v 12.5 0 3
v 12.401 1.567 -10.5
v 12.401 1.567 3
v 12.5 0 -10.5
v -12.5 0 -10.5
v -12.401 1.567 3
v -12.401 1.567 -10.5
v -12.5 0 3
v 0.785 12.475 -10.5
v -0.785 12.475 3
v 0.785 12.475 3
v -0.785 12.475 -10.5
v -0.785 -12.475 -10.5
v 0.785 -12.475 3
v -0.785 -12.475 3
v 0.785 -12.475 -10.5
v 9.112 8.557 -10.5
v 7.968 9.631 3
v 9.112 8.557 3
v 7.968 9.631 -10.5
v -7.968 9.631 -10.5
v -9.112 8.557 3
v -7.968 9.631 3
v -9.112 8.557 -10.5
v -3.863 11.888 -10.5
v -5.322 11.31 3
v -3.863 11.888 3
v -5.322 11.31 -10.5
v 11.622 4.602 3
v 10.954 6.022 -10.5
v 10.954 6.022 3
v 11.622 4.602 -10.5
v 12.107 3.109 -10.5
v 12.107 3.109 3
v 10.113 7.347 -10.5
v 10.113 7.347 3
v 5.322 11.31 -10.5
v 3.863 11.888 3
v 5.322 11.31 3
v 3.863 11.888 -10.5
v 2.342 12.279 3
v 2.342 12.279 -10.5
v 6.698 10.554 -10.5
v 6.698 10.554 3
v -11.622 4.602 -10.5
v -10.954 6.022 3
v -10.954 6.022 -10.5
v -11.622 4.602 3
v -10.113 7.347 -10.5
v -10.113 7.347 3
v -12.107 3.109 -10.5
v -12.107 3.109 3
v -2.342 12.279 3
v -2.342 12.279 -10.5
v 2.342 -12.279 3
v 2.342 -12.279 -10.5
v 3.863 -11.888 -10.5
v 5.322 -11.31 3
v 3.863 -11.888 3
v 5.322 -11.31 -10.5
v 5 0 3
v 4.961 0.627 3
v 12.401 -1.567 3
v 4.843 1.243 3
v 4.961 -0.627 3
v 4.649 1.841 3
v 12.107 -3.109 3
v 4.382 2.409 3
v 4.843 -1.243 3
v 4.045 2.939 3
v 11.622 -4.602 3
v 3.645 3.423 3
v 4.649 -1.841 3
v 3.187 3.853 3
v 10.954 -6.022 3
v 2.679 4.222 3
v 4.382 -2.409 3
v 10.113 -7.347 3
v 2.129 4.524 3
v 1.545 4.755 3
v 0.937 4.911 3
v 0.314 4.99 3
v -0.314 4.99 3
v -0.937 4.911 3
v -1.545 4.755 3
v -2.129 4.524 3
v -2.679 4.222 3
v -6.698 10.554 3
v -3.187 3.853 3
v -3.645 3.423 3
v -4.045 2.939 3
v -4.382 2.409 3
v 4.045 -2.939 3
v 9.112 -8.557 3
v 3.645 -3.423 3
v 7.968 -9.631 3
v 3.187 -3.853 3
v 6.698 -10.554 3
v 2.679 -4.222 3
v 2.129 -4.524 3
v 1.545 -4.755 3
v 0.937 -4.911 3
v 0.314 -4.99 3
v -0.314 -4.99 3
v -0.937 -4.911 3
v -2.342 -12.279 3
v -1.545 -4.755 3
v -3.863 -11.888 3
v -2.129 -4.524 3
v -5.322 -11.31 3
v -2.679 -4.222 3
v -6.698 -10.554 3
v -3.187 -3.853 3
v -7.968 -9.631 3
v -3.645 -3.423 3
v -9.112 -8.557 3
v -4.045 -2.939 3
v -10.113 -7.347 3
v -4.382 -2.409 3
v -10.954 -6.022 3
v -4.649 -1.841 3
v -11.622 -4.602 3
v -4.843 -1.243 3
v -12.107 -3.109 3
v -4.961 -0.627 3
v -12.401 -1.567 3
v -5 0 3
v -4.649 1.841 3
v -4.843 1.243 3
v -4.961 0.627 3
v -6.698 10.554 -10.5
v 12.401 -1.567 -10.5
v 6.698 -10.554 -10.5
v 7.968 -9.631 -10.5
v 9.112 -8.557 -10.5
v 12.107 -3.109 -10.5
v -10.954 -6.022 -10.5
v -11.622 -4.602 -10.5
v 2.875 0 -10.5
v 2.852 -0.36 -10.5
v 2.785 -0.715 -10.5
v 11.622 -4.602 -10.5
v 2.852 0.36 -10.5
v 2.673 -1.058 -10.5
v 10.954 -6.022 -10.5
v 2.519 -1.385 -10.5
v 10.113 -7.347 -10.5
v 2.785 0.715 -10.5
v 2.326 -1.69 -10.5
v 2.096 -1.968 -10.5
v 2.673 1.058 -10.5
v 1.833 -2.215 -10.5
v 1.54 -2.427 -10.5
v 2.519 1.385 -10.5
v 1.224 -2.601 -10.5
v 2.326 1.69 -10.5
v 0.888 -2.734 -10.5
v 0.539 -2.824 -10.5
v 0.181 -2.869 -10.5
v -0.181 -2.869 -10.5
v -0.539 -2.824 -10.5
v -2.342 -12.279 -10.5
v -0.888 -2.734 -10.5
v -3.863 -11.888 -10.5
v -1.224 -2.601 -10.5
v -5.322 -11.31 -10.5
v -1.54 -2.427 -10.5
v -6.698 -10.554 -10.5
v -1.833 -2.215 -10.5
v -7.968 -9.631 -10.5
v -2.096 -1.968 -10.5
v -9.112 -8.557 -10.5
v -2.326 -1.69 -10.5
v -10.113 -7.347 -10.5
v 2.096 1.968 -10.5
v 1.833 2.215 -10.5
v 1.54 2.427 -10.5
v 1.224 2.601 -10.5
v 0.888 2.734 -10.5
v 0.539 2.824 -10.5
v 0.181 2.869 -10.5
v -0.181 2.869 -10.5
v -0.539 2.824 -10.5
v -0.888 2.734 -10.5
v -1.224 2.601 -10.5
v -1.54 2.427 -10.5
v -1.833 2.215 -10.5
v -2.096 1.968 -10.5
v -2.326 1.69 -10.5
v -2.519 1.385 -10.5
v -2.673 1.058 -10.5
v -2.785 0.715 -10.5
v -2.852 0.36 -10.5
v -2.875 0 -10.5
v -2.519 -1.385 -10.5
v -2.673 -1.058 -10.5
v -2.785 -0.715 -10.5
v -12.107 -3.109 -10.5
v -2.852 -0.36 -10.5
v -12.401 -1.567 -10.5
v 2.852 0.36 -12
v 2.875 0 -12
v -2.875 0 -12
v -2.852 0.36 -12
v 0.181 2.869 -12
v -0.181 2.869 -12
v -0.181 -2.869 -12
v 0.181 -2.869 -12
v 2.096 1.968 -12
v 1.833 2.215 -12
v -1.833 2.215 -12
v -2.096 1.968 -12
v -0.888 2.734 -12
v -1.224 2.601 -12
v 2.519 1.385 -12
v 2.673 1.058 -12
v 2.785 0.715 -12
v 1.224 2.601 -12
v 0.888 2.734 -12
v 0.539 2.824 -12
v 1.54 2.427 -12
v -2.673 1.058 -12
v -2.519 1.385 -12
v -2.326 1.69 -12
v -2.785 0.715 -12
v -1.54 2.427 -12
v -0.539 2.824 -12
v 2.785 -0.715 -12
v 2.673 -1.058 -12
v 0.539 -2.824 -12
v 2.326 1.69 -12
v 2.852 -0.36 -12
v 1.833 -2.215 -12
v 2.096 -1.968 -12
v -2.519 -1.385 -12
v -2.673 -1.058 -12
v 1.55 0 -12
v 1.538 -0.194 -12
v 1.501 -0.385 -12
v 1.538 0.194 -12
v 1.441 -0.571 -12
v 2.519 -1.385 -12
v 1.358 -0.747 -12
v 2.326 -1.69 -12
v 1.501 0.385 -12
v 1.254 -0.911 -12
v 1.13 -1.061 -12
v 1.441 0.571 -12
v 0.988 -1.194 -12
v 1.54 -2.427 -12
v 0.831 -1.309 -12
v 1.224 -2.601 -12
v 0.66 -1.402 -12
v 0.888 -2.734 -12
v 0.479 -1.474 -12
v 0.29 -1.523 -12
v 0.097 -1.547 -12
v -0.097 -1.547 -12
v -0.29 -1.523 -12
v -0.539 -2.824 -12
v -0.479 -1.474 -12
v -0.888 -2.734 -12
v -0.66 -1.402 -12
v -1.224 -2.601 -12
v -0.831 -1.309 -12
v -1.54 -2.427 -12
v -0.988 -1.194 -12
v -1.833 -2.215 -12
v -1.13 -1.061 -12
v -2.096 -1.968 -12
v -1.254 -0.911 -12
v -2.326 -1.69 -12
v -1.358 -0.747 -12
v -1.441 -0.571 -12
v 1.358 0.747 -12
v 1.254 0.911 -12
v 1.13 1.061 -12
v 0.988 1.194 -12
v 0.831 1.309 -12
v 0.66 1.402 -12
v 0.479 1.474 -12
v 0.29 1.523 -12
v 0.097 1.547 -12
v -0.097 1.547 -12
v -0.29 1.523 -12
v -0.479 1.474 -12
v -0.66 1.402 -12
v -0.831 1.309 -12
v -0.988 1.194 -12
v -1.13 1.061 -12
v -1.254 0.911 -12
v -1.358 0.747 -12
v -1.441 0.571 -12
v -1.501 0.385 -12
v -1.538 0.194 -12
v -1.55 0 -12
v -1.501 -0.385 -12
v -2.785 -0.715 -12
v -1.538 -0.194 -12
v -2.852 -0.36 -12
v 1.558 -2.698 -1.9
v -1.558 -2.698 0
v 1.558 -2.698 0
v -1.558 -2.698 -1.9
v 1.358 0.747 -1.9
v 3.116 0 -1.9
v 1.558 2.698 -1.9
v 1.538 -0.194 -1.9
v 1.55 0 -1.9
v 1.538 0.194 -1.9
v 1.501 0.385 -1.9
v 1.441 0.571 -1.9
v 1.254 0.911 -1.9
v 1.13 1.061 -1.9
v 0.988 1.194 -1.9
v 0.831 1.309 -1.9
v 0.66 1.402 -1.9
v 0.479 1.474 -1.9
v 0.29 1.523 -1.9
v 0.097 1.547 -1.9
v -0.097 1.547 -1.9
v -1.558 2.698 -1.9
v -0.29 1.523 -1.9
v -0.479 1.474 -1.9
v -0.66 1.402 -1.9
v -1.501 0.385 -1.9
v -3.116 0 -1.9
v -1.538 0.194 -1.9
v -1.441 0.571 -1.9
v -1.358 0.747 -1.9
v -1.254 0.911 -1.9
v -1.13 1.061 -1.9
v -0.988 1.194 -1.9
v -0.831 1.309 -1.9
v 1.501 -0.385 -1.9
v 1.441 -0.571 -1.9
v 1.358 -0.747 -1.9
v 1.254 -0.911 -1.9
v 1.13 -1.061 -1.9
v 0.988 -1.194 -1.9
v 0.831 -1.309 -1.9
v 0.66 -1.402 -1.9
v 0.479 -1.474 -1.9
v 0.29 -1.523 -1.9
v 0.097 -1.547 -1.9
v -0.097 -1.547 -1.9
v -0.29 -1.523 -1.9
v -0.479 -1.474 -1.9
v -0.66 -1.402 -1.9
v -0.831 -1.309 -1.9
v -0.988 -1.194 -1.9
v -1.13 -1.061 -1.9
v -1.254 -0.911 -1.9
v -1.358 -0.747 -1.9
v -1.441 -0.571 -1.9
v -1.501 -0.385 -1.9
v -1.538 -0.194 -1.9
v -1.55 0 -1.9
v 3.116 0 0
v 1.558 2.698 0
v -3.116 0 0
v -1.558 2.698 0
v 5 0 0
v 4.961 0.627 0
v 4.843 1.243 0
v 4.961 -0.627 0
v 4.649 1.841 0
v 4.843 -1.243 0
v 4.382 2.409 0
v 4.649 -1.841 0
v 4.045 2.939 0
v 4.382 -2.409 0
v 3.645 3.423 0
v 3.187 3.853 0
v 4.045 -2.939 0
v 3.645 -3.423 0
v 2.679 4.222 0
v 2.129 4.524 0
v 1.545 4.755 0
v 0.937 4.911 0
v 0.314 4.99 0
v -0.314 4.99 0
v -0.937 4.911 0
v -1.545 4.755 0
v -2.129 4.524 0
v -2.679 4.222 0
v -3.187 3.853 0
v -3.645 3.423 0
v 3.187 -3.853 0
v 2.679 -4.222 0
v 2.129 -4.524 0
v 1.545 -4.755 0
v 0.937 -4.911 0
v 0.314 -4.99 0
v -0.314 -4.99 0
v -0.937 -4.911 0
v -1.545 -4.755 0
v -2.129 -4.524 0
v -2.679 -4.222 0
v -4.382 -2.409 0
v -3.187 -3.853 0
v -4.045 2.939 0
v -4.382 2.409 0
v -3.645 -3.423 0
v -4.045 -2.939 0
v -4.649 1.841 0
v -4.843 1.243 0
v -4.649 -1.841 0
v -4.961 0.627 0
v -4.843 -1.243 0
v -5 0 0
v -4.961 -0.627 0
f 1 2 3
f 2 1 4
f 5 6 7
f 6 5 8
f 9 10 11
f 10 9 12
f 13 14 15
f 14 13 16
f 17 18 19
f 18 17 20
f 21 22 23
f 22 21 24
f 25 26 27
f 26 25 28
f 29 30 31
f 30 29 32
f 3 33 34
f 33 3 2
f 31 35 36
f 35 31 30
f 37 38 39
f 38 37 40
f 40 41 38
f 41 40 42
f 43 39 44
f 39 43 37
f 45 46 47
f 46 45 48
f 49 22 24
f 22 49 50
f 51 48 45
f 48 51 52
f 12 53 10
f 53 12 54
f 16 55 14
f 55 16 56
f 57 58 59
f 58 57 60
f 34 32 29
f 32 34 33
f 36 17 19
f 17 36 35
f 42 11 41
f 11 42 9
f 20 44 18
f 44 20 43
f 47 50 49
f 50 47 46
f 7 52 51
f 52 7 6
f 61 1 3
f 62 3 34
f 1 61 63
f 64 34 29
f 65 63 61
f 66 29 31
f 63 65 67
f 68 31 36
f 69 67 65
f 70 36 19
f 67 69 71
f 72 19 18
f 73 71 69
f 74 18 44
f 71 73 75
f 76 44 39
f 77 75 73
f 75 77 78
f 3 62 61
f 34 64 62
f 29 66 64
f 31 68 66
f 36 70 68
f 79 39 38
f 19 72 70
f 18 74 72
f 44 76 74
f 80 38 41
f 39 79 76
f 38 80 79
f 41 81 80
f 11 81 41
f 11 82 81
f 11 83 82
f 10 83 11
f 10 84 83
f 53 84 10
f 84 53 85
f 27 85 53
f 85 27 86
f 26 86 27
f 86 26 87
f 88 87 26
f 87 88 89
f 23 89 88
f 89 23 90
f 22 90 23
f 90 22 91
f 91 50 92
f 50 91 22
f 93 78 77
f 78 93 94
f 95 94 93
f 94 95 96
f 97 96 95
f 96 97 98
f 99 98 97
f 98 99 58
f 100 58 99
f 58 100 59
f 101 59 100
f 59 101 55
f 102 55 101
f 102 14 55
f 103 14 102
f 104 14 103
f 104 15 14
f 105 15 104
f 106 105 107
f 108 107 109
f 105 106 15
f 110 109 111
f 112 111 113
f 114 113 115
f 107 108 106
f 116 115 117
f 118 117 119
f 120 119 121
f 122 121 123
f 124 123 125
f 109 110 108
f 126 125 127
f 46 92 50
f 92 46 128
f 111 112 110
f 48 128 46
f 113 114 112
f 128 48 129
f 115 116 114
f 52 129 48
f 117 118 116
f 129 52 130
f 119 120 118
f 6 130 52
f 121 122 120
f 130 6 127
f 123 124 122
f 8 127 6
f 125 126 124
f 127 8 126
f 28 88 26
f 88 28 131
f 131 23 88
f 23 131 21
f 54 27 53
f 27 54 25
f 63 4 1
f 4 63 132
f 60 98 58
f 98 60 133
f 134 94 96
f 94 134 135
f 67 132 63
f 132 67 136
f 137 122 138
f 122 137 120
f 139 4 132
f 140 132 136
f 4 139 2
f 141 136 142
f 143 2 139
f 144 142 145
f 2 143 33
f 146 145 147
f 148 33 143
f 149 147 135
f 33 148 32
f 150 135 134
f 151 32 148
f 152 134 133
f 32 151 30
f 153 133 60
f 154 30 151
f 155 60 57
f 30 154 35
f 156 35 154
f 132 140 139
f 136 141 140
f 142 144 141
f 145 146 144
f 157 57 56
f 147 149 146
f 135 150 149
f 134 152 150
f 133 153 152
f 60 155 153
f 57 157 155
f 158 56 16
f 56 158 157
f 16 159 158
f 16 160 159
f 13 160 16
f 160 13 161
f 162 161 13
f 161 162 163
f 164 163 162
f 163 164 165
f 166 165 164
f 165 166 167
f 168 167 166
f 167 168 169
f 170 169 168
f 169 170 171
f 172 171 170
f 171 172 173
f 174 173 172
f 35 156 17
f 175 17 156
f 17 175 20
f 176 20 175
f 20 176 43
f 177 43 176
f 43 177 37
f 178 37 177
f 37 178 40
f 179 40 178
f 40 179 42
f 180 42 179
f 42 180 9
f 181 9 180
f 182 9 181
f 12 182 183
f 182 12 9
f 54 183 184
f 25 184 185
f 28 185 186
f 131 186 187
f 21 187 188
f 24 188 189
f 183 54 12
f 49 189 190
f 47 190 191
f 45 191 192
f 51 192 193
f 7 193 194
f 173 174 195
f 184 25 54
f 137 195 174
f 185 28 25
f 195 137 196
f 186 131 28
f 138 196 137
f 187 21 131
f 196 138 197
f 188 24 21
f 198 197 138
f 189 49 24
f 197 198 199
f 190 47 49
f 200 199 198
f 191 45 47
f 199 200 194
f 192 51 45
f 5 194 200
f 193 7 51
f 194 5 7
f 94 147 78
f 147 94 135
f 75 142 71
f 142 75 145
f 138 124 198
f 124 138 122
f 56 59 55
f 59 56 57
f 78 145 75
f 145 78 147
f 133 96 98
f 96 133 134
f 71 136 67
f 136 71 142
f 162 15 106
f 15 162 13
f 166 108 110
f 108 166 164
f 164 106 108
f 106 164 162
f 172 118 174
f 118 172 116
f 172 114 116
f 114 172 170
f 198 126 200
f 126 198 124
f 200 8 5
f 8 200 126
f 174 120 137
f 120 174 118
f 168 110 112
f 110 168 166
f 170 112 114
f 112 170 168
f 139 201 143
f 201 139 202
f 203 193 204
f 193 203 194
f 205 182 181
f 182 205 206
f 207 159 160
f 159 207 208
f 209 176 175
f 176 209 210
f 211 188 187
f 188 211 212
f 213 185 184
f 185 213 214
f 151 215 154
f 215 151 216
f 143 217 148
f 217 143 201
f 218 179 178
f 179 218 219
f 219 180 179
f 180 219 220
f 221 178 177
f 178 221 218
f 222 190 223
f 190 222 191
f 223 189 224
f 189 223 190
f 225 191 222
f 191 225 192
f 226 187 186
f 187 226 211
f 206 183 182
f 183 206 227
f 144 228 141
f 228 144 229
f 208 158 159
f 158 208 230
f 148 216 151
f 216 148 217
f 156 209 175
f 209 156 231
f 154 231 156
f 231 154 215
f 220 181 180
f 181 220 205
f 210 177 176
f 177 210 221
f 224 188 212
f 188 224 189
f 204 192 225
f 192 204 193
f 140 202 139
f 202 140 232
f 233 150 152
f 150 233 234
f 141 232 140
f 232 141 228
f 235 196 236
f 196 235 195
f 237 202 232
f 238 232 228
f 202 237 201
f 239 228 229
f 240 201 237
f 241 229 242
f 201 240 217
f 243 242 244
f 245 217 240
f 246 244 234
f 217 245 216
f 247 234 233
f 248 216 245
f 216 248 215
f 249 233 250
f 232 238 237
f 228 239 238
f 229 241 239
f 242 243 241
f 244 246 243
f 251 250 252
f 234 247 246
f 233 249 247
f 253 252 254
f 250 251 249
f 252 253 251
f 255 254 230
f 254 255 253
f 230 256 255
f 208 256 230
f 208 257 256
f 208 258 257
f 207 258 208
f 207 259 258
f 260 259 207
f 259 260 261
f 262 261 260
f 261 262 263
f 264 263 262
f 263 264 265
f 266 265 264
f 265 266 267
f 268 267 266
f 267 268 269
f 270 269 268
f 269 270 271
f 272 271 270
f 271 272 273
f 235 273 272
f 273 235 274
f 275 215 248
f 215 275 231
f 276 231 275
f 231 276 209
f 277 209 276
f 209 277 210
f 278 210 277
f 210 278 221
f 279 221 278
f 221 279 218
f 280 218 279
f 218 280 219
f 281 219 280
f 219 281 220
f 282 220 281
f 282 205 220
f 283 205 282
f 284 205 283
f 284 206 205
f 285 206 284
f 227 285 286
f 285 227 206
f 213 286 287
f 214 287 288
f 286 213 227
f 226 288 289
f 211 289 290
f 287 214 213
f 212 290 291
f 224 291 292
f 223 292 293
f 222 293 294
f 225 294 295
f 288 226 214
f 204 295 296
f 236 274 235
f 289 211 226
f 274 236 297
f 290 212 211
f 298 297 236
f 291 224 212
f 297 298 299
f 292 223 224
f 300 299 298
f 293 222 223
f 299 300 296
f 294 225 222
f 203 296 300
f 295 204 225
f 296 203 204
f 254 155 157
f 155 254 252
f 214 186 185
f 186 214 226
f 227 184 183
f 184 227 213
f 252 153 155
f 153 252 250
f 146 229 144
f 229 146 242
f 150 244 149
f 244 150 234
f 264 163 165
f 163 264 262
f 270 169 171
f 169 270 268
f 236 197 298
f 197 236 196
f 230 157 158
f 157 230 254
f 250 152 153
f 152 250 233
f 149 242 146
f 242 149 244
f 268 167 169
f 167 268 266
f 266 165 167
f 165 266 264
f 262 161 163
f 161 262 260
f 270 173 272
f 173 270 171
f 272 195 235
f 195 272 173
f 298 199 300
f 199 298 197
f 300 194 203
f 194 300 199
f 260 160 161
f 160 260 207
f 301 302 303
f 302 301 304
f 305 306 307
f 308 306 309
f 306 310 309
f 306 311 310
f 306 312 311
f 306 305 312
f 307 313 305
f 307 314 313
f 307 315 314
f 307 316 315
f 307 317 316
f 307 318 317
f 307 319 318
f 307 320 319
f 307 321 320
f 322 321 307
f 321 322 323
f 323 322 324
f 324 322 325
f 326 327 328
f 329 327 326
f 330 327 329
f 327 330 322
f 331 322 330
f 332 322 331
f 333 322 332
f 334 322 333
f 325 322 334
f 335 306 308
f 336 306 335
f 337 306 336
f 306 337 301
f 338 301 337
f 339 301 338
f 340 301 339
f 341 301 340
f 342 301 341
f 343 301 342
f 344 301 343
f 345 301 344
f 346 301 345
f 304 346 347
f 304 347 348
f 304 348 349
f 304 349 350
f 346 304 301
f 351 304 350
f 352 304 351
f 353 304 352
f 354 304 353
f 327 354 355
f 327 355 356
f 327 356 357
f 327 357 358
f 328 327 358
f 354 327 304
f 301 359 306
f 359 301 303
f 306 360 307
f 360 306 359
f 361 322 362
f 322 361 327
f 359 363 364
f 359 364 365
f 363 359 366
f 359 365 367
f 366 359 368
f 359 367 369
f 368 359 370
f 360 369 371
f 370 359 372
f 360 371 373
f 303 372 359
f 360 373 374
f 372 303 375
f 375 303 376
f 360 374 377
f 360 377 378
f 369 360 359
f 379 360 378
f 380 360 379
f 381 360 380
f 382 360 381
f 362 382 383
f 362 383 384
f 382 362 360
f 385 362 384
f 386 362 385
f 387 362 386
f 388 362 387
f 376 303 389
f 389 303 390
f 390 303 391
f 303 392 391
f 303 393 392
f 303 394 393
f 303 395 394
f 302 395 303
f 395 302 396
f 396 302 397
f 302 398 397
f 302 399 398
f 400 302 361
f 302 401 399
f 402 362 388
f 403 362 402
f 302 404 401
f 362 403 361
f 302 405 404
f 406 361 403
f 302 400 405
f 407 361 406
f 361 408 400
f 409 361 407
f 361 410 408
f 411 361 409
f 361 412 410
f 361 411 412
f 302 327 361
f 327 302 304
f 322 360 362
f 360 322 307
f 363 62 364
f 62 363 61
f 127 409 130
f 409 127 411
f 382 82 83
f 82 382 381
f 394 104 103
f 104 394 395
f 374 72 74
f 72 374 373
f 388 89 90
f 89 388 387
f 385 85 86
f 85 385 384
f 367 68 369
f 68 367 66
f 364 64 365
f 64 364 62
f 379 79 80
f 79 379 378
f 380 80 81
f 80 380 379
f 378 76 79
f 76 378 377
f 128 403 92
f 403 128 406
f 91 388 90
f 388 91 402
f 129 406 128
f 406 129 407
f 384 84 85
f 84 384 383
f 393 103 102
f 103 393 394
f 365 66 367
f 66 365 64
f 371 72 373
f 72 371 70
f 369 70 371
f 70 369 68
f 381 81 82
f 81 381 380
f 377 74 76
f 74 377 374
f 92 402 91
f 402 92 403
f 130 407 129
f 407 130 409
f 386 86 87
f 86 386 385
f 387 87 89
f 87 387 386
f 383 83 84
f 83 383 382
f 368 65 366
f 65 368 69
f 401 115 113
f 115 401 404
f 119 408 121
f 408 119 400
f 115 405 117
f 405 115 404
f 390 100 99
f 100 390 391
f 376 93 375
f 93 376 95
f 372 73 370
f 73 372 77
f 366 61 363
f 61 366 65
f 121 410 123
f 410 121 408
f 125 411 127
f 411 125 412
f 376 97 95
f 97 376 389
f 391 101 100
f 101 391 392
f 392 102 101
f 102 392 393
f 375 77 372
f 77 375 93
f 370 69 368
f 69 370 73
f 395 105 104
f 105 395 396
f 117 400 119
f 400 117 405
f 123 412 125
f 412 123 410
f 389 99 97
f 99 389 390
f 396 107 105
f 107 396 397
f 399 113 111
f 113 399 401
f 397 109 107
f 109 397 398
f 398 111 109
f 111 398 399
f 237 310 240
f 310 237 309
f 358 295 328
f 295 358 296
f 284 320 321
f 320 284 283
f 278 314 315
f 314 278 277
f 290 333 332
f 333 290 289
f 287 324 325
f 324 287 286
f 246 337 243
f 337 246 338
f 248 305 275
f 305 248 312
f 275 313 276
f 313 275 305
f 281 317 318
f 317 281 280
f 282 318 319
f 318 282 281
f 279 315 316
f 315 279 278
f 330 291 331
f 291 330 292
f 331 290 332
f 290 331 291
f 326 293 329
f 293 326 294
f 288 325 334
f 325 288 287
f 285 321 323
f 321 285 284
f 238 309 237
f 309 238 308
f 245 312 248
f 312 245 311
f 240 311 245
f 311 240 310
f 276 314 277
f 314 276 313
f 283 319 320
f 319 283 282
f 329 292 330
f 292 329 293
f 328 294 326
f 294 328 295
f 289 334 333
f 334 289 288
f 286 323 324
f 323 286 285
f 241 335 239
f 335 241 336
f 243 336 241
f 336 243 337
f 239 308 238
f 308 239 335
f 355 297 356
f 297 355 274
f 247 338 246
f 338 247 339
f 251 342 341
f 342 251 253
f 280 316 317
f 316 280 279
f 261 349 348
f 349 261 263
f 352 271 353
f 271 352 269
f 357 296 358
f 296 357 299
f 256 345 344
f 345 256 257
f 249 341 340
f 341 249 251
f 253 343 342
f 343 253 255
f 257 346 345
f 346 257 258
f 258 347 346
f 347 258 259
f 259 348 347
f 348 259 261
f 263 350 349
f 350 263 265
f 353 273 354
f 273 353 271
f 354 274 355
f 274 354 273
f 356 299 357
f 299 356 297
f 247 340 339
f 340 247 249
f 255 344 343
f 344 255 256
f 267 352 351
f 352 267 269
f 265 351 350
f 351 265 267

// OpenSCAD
$fn = 50;


difference() {
	union() {
		translate(v = [0, 0, -10.5000000000]) {
			cylinder(h = 13.5000000000, r = 12.5000000000);
		}
		#translate(v = [0, 0, -12.0000000000]) {
			cylinder(h = 12, r = 2.8750000000);
		}
	}
	union() {
		translate(v = [0, 0, 0]) {
			rotate(a = [0, 0, 0]) {
				difference() {
					union() {
						translate(v = [0, 0, -1.9000000000]) {
							linear_extrude(height = 1.9000000000) {
								polygon(points = [[3.1158000000, 0.0000000000], [1.5579000000, 2.6983619531], [-1.5579000000, 2.6983619531], [-3.1158000000, 0.0000000000], [-1.5579000000, -2.6983619531], [1.5579000000, -2.6983619531]]);
							}
						}
					}
					union();
				}
			}
		}
		#cylinder(h = 3, r = 5.0000000000);
		#translate(v = [0, 0, -100.0000000000]) {
			cylinder(h = 200, r = 1.5500000000);
		}
	}
}
